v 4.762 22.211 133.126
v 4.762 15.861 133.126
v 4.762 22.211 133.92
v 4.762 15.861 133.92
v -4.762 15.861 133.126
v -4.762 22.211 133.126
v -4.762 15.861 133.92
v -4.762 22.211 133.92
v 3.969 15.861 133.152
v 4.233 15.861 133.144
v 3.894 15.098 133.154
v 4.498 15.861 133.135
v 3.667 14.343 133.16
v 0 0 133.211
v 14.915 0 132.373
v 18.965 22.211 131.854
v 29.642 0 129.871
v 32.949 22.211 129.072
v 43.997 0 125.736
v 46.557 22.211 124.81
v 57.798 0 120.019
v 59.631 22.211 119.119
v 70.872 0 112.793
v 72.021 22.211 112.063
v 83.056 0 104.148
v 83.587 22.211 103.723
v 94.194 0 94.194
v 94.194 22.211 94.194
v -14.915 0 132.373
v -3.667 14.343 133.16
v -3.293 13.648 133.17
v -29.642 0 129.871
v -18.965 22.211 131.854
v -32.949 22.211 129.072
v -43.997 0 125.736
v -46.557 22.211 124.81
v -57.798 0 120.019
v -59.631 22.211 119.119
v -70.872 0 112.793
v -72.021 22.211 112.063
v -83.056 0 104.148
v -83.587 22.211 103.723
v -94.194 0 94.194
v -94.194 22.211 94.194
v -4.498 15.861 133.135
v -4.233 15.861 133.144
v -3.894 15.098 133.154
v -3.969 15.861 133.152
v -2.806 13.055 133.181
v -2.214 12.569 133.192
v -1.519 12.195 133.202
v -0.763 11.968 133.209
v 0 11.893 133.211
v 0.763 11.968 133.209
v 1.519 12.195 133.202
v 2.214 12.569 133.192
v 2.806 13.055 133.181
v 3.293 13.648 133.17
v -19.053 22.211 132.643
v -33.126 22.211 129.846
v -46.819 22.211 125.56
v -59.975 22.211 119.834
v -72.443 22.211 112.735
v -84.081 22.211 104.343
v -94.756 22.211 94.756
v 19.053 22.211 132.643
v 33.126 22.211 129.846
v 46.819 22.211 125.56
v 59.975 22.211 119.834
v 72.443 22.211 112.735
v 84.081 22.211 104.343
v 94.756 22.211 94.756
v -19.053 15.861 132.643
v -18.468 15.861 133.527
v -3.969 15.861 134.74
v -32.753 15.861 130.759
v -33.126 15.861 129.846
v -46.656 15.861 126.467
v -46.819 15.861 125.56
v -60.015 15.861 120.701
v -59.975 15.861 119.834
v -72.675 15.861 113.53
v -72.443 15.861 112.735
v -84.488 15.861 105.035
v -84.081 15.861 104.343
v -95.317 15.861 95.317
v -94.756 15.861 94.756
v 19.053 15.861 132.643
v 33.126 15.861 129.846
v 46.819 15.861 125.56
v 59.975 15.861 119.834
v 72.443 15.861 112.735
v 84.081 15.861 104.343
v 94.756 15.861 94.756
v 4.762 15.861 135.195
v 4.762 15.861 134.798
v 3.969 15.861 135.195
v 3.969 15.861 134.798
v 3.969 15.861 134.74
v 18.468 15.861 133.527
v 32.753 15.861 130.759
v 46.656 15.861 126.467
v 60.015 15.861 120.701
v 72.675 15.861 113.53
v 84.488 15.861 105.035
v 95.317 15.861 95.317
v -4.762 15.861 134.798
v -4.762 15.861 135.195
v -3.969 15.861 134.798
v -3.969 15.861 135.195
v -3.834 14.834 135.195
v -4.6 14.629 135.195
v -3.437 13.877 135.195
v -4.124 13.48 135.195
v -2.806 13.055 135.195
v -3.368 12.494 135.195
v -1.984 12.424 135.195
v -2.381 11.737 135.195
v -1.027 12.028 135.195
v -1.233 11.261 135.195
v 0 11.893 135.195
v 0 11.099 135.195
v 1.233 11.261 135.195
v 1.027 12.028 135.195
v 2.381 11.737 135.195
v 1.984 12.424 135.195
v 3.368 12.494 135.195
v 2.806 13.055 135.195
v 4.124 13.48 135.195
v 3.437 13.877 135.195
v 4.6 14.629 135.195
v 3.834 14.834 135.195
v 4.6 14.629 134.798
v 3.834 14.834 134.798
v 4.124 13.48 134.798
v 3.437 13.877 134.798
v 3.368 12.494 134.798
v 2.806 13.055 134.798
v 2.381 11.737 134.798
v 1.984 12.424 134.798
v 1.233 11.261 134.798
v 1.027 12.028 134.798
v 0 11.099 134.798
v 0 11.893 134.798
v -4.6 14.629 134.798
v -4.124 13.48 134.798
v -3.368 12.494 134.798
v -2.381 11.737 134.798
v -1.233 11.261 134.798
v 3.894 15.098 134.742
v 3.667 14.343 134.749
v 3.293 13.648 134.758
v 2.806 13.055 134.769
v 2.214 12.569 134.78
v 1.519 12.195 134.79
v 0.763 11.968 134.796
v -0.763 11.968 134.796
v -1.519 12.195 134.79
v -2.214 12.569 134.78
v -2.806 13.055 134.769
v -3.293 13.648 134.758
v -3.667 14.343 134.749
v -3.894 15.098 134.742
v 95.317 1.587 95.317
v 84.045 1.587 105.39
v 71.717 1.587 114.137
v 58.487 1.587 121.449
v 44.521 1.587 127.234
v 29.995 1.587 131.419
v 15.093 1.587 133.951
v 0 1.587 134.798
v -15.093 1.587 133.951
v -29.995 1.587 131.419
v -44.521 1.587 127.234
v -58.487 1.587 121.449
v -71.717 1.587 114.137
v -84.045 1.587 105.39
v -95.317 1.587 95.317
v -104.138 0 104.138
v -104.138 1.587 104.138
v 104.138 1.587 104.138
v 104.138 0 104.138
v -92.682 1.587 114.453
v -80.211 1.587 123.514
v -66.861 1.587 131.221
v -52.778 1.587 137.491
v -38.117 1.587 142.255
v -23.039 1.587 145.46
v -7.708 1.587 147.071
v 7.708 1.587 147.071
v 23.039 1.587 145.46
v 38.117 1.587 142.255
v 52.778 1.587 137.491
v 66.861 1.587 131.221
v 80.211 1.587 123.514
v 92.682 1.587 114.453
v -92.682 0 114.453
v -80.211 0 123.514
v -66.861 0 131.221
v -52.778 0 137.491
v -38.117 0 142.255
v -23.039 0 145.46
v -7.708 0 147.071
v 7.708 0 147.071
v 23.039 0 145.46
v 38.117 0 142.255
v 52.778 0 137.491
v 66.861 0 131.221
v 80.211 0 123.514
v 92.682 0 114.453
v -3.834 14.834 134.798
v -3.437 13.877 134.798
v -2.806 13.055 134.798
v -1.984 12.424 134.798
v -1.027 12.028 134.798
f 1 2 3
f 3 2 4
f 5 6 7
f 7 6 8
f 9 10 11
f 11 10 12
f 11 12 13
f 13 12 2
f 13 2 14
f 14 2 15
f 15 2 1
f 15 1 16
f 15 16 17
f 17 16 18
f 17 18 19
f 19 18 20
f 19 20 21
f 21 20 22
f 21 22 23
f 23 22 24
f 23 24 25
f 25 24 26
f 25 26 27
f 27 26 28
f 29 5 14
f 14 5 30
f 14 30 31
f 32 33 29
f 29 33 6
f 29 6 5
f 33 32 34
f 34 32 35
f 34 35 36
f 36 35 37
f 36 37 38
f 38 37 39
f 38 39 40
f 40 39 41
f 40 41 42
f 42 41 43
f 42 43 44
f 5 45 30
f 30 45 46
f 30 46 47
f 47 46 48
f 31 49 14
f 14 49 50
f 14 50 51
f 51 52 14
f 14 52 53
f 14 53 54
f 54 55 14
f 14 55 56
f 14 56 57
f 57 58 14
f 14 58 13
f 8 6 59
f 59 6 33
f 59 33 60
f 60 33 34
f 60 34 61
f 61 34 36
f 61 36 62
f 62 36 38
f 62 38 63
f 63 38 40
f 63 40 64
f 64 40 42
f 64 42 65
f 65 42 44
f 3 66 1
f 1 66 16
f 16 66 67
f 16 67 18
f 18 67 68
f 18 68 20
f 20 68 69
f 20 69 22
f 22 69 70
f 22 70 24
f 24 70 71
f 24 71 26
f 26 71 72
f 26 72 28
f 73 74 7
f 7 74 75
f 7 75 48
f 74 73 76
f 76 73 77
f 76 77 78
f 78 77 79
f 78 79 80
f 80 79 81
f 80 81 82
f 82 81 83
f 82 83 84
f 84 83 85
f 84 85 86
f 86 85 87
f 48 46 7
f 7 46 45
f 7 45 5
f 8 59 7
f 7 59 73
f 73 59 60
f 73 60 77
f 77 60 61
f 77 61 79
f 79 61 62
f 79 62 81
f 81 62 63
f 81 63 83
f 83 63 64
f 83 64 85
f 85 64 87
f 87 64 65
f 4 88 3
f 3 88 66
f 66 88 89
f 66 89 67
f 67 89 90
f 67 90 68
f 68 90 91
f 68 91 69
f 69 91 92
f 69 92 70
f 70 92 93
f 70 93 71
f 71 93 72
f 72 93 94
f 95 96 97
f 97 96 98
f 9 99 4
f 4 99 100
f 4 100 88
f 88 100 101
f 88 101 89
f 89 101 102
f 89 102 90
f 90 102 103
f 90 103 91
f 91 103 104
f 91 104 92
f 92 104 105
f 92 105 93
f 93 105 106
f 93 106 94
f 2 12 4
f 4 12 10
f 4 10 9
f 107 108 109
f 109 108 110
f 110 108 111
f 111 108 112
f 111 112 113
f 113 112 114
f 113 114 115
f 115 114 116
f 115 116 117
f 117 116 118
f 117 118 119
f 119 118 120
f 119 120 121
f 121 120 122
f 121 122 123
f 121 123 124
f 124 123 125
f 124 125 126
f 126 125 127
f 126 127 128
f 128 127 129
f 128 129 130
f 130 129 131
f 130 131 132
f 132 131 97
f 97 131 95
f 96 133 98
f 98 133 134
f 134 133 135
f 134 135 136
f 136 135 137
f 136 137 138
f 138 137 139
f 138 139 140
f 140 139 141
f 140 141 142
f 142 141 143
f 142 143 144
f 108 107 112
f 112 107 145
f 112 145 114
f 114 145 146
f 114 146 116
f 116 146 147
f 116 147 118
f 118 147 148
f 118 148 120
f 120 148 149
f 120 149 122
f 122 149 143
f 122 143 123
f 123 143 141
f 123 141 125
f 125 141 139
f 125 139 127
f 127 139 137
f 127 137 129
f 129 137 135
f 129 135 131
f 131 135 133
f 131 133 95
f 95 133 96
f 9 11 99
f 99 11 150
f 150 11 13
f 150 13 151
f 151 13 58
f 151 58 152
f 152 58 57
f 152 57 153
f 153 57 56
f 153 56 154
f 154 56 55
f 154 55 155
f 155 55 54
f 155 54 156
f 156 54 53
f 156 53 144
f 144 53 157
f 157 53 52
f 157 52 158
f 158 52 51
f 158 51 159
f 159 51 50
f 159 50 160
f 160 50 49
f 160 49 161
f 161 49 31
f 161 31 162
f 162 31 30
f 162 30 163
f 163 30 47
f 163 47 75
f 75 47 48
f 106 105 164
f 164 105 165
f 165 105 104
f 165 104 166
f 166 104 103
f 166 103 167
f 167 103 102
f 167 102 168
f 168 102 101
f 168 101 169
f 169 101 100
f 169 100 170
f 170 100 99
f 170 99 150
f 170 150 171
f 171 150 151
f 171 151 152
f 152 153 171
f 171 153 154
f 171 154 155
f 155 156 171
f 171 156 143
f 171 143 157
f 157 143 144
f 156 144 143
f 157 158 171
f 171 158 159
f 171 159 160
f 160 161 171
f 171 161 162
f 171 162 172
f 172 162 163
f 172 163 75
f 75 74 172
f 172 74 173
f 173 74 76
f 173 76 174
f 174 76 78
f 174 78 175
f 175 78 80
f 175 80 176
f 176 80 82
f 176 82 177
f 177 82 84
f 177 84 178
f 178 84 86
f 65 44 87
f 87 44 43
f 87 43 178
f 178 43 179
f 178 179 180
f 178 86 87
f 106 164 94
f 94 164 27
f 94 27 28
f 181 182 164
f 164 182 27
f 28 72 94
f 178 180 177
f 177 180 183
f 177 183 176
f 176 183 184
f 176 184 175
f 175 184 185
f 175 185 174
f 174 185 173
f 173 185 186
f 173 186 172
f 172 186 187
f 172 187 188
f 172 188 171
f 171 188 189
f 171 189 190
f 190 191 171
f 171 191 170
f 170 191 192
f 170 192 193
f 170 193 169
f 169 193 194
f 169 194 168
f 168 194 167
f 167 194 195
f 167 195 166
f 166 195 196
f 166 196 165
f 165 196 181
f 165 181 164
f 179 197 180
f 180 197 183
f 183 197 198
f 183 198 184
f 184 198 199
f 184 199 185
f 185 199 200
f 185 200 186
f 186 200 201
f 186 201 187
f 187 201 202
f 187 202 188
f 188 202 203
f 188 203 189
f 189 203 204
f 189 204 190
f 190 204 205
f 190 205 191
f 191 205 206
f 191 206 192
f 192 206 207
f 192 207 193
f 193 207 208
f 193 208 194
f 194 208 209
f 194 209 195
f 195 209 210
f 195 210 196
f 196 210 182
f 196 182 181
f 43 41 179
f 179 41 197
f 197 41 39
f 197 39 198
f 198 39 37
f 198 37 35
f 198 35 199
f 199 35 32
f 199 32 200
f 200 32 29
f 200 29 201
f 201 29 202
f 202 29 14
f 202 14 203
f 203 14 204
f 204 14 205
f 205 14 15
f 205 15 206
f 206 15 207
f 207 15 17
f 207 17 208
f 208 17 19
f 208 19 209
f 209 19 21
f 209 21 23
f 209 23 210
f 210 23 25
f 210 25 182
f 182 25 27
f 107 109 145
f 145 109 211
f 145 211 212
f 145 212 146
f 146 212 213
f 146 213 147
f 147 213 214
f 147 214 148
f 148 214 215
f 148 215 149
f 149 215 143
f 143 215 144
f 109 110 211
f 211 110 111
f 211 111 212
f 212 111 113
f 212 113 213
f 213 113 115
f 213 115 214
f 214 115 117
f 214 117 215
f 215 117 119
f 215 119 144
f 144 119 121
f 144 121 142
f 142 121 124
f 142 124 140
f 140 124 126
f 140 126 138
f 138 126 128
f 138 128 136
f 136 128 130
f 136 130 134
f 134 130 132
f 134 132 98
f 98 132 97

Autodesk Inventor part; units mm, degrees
ref_plane "YZ Plane" through (0, 0, 0) normal (1, 0, 0) x (0, 1, 0)
ref_plane "XZ Plane" through (0, 0, 0) normal (0, 1, 0) x (-1, 0, 0)
sketch "Sketch1" plane through (0, 0, 0) normal (1, 0, 0) x (0, 1, 0)
  line L0 (0, 0) -> (28.6807, 0)
  line L1 (0, 133.2109) -> (36.4852, 133.2109)
  line L2 (0, 133.2109) -> (0, 147.2732)
  line L3 (0, 147.2732) -> (1.5875, 147.2732)
  line L4 (1.5875, 134.7984) -> (36.4852, 134.7984)
  line L5 (36.4852, 134.7984) -> (36.4852, 133.2109)
  line L6 (1.5875, 134.7984) -> (1.5875, 147.2732)
  point P0 (15.8613, 134.7984)
  dimension "Lay2Rad" = 133.2109
  dimension "d1" = 14.0623
  dimension "d2" = 1.5875
  dimension "d3" = 36.4852
  dimension "d4" = 1.5875
  dimension "d5" = 1.5875
  dimension "d7" = 14.2738
revolve "Revolution1" add sketch "Sketch1" angle 360 about axis through (0, 0, 0) along (0, 1, 0)
ref_plane "Work Plane1" through (0, 15.8613, 134.7984) normal (0, 0, 1) x (1, 0, 0)
sketch "Sketch2" plane through (0, 15.8613, 134.7984) normal (0, 0, 1) x (1, 0, 0)
  circle A0 centre (0, 0) radius 4.7625
  circle A1 centre (0, 0) radius 3.9688
  point P0 (0, -15.8613)
  dimension "d8" = 9.525
  dimension "d11" = 7.9375
extrude "Extrusion2" cut sketch "Sketch2" against normal through all contours A1
extrude "Extrusion3" add sketch "Sketch2" along normal blind 0.3969
sketch "Sketch3" plane through (0, 36.4852, 0) normal (0, 1, 0) x (1, 0, 0)
  circle A0 centre (0, 0) radius 133.2109
  circle A1 centre (0, 0) radius 133.2109 projected
  circle A2 centre (0, 0) radius 153.6232
  circle A3 centre (0, 0) radius 147.2732 projected
  dimension "d16" = 6.35
extrude "Extrusion4" add sketch "Sketch3" along normal blind 1.5875 contours A2 | A3
sketch "Sketch4" plane through (0, 38.0727, 0) normal (0, 1, 0) x (1, 0, 0)
  line L0 (0, 0) -> (-167.0067, -167.0067)
  line L1 (0, 0) -> (236.1832, 0) construction
  line L2 (0, 0) -> (195.6261, -195.6261)
  line L3 (195.6261, -195.6261) -> (-166.4474, -166.4474)
  line L4 (-166.4474, -166.4474) -> (-176.2344, 211.1551)
  line L5 (-176.2344, 211.1551) -> (203.4461, 189.6497)
  line L6 (203.4461, 189.6497) -> (195.6261, -195.6261)
  dimension "d19" = 135
extrude "Extrusion5" cut sketch "Sketch4" against normal through all contours L0 L4 L5 L6 L2
sketch "Sketch5" plane through (94.1943, 0, 94.1943) normal (0.7071, 0, -0.7071) x (-0.7071, 0, -0.7071)
  line L0 (-6.6801, 15.8613) -> (6.5648, 15.8613)
  line L1 (0, 0) -> (-14.0623, 0) projected
  line L2 (0, 38.0727) -> (0, 0) projected
  line L3 (-0.7937, 15.8613) -> (-0.7937, 22.2113)
  line L4 (-0.7937, 22.2113) -> (0, 22.2113)
  line L5 (-0.7937, 15.8613) -> (-0.7937, 9.5113)
  line L6 (-0.7937, 9.5113) -> (-1.5875, 9.5113)
  line L7 (-1.5875, 1.5875) -> (-1.5875, 36.4852) projected
  line L8 (-1.5875, 9.5113) -> (-19.7753, 9.5113)
  line L9 (-19.7753, 9.5113) -> (-9.8215, -14.1735)
  line L10 (-9.8215, -14.1735) -> (10.1035, -9.9498)
  line L11 (10.1035, -9.9498) -> (6.5648, 15.8613)
  line L12 (0, 22.2113) -> (7.2571, 44.9587)
  line L13 (7.2571, 44.9587) -> (-27.8182, 42.4796)
  line L14 (-27.8182, 42.4796) -> (-19.0035, 23.7483)
  line L15 (133.2109, 0) -> (133.2109, 65.8048)
  line L16 (-14.0623, 1.5875) -> (-1.5875, 1.5875) projected
  line L17 (-19.0035, 23.7483) -> (-6.6801, 15.8613)
  dimension "d23" = 0.7937
  dimension "d24" = 6.35
  dimension "d25" = 6.35
  dimension "d27" = 14.2738
revolve "Revolution2" cut sketch "Sketch5" angle 90 about axis through (0, 0, 0) along (0, -1, 0) contours L17 L14 L13 L12 L4 L3 L0
sketch "Sketch6" plane through (0, 15.8613, 135.1953) normal (0, 0, 1) x (1, 0, 0)
  arc A0 (-4.7625, 0) -> (0, -4.7625) centre (0, 0) ccw projected
  line L0 (-4.7625, 0) -> (4.7625, 0)
  line L1 (4.7625, 0) -> (4.7625, 12.272)
  line L2 (4.7625, 12.272) -> (-4.7625, 12.272)
  line L3 (-4.7625, 12.272) -> (-4.7625, 0)
  point P0 (0, -15.8613)
  point P1 (4.7625, 0)
  dimension "d29" = 9.525
extrude "Extrusion6" cut sketch "Sketch6" against normal through all
equation "\"Lay2Rad\" = -2 * SpWall + 0.5 * IBDia"
equation "\"d2\" = Wall"
equation "\"d3\" = d1_1 + BevDriverDia + SpWall + Space + Wall"
equation "\"d4\" = Wall"
equation "\"d5\" = Wall"
equation "\"d7\" = 1.5 * Space + 0.5 * BevDriverDia"
equation "\"d8\" = 2 * Space + AxelDia"
equation "\"d11\" = AxelDia + Space"
equation "\"d14\" = 0.25 * Wall"
equation "\"d17\" = Wall"
equation "\"d23\" = 0.5 * Wall"
equation "\"d27\" = 1.5 * Space + 0.5 * BevDriverDia"
equation "\"SpWall\" = 3.175"
equation "\"IBDia\" = 279.121792"
equation "\"Wall\" = 1.5875"
equation "\"d1_1\" = 6.35"
equation "\"BevDriverDia\" = 23.785175"
equation "\"Space\" = 1.5875"
equation "\"AxelDia\" = 6.35"
properties part number "Layer2_Bottom_Quarter"
